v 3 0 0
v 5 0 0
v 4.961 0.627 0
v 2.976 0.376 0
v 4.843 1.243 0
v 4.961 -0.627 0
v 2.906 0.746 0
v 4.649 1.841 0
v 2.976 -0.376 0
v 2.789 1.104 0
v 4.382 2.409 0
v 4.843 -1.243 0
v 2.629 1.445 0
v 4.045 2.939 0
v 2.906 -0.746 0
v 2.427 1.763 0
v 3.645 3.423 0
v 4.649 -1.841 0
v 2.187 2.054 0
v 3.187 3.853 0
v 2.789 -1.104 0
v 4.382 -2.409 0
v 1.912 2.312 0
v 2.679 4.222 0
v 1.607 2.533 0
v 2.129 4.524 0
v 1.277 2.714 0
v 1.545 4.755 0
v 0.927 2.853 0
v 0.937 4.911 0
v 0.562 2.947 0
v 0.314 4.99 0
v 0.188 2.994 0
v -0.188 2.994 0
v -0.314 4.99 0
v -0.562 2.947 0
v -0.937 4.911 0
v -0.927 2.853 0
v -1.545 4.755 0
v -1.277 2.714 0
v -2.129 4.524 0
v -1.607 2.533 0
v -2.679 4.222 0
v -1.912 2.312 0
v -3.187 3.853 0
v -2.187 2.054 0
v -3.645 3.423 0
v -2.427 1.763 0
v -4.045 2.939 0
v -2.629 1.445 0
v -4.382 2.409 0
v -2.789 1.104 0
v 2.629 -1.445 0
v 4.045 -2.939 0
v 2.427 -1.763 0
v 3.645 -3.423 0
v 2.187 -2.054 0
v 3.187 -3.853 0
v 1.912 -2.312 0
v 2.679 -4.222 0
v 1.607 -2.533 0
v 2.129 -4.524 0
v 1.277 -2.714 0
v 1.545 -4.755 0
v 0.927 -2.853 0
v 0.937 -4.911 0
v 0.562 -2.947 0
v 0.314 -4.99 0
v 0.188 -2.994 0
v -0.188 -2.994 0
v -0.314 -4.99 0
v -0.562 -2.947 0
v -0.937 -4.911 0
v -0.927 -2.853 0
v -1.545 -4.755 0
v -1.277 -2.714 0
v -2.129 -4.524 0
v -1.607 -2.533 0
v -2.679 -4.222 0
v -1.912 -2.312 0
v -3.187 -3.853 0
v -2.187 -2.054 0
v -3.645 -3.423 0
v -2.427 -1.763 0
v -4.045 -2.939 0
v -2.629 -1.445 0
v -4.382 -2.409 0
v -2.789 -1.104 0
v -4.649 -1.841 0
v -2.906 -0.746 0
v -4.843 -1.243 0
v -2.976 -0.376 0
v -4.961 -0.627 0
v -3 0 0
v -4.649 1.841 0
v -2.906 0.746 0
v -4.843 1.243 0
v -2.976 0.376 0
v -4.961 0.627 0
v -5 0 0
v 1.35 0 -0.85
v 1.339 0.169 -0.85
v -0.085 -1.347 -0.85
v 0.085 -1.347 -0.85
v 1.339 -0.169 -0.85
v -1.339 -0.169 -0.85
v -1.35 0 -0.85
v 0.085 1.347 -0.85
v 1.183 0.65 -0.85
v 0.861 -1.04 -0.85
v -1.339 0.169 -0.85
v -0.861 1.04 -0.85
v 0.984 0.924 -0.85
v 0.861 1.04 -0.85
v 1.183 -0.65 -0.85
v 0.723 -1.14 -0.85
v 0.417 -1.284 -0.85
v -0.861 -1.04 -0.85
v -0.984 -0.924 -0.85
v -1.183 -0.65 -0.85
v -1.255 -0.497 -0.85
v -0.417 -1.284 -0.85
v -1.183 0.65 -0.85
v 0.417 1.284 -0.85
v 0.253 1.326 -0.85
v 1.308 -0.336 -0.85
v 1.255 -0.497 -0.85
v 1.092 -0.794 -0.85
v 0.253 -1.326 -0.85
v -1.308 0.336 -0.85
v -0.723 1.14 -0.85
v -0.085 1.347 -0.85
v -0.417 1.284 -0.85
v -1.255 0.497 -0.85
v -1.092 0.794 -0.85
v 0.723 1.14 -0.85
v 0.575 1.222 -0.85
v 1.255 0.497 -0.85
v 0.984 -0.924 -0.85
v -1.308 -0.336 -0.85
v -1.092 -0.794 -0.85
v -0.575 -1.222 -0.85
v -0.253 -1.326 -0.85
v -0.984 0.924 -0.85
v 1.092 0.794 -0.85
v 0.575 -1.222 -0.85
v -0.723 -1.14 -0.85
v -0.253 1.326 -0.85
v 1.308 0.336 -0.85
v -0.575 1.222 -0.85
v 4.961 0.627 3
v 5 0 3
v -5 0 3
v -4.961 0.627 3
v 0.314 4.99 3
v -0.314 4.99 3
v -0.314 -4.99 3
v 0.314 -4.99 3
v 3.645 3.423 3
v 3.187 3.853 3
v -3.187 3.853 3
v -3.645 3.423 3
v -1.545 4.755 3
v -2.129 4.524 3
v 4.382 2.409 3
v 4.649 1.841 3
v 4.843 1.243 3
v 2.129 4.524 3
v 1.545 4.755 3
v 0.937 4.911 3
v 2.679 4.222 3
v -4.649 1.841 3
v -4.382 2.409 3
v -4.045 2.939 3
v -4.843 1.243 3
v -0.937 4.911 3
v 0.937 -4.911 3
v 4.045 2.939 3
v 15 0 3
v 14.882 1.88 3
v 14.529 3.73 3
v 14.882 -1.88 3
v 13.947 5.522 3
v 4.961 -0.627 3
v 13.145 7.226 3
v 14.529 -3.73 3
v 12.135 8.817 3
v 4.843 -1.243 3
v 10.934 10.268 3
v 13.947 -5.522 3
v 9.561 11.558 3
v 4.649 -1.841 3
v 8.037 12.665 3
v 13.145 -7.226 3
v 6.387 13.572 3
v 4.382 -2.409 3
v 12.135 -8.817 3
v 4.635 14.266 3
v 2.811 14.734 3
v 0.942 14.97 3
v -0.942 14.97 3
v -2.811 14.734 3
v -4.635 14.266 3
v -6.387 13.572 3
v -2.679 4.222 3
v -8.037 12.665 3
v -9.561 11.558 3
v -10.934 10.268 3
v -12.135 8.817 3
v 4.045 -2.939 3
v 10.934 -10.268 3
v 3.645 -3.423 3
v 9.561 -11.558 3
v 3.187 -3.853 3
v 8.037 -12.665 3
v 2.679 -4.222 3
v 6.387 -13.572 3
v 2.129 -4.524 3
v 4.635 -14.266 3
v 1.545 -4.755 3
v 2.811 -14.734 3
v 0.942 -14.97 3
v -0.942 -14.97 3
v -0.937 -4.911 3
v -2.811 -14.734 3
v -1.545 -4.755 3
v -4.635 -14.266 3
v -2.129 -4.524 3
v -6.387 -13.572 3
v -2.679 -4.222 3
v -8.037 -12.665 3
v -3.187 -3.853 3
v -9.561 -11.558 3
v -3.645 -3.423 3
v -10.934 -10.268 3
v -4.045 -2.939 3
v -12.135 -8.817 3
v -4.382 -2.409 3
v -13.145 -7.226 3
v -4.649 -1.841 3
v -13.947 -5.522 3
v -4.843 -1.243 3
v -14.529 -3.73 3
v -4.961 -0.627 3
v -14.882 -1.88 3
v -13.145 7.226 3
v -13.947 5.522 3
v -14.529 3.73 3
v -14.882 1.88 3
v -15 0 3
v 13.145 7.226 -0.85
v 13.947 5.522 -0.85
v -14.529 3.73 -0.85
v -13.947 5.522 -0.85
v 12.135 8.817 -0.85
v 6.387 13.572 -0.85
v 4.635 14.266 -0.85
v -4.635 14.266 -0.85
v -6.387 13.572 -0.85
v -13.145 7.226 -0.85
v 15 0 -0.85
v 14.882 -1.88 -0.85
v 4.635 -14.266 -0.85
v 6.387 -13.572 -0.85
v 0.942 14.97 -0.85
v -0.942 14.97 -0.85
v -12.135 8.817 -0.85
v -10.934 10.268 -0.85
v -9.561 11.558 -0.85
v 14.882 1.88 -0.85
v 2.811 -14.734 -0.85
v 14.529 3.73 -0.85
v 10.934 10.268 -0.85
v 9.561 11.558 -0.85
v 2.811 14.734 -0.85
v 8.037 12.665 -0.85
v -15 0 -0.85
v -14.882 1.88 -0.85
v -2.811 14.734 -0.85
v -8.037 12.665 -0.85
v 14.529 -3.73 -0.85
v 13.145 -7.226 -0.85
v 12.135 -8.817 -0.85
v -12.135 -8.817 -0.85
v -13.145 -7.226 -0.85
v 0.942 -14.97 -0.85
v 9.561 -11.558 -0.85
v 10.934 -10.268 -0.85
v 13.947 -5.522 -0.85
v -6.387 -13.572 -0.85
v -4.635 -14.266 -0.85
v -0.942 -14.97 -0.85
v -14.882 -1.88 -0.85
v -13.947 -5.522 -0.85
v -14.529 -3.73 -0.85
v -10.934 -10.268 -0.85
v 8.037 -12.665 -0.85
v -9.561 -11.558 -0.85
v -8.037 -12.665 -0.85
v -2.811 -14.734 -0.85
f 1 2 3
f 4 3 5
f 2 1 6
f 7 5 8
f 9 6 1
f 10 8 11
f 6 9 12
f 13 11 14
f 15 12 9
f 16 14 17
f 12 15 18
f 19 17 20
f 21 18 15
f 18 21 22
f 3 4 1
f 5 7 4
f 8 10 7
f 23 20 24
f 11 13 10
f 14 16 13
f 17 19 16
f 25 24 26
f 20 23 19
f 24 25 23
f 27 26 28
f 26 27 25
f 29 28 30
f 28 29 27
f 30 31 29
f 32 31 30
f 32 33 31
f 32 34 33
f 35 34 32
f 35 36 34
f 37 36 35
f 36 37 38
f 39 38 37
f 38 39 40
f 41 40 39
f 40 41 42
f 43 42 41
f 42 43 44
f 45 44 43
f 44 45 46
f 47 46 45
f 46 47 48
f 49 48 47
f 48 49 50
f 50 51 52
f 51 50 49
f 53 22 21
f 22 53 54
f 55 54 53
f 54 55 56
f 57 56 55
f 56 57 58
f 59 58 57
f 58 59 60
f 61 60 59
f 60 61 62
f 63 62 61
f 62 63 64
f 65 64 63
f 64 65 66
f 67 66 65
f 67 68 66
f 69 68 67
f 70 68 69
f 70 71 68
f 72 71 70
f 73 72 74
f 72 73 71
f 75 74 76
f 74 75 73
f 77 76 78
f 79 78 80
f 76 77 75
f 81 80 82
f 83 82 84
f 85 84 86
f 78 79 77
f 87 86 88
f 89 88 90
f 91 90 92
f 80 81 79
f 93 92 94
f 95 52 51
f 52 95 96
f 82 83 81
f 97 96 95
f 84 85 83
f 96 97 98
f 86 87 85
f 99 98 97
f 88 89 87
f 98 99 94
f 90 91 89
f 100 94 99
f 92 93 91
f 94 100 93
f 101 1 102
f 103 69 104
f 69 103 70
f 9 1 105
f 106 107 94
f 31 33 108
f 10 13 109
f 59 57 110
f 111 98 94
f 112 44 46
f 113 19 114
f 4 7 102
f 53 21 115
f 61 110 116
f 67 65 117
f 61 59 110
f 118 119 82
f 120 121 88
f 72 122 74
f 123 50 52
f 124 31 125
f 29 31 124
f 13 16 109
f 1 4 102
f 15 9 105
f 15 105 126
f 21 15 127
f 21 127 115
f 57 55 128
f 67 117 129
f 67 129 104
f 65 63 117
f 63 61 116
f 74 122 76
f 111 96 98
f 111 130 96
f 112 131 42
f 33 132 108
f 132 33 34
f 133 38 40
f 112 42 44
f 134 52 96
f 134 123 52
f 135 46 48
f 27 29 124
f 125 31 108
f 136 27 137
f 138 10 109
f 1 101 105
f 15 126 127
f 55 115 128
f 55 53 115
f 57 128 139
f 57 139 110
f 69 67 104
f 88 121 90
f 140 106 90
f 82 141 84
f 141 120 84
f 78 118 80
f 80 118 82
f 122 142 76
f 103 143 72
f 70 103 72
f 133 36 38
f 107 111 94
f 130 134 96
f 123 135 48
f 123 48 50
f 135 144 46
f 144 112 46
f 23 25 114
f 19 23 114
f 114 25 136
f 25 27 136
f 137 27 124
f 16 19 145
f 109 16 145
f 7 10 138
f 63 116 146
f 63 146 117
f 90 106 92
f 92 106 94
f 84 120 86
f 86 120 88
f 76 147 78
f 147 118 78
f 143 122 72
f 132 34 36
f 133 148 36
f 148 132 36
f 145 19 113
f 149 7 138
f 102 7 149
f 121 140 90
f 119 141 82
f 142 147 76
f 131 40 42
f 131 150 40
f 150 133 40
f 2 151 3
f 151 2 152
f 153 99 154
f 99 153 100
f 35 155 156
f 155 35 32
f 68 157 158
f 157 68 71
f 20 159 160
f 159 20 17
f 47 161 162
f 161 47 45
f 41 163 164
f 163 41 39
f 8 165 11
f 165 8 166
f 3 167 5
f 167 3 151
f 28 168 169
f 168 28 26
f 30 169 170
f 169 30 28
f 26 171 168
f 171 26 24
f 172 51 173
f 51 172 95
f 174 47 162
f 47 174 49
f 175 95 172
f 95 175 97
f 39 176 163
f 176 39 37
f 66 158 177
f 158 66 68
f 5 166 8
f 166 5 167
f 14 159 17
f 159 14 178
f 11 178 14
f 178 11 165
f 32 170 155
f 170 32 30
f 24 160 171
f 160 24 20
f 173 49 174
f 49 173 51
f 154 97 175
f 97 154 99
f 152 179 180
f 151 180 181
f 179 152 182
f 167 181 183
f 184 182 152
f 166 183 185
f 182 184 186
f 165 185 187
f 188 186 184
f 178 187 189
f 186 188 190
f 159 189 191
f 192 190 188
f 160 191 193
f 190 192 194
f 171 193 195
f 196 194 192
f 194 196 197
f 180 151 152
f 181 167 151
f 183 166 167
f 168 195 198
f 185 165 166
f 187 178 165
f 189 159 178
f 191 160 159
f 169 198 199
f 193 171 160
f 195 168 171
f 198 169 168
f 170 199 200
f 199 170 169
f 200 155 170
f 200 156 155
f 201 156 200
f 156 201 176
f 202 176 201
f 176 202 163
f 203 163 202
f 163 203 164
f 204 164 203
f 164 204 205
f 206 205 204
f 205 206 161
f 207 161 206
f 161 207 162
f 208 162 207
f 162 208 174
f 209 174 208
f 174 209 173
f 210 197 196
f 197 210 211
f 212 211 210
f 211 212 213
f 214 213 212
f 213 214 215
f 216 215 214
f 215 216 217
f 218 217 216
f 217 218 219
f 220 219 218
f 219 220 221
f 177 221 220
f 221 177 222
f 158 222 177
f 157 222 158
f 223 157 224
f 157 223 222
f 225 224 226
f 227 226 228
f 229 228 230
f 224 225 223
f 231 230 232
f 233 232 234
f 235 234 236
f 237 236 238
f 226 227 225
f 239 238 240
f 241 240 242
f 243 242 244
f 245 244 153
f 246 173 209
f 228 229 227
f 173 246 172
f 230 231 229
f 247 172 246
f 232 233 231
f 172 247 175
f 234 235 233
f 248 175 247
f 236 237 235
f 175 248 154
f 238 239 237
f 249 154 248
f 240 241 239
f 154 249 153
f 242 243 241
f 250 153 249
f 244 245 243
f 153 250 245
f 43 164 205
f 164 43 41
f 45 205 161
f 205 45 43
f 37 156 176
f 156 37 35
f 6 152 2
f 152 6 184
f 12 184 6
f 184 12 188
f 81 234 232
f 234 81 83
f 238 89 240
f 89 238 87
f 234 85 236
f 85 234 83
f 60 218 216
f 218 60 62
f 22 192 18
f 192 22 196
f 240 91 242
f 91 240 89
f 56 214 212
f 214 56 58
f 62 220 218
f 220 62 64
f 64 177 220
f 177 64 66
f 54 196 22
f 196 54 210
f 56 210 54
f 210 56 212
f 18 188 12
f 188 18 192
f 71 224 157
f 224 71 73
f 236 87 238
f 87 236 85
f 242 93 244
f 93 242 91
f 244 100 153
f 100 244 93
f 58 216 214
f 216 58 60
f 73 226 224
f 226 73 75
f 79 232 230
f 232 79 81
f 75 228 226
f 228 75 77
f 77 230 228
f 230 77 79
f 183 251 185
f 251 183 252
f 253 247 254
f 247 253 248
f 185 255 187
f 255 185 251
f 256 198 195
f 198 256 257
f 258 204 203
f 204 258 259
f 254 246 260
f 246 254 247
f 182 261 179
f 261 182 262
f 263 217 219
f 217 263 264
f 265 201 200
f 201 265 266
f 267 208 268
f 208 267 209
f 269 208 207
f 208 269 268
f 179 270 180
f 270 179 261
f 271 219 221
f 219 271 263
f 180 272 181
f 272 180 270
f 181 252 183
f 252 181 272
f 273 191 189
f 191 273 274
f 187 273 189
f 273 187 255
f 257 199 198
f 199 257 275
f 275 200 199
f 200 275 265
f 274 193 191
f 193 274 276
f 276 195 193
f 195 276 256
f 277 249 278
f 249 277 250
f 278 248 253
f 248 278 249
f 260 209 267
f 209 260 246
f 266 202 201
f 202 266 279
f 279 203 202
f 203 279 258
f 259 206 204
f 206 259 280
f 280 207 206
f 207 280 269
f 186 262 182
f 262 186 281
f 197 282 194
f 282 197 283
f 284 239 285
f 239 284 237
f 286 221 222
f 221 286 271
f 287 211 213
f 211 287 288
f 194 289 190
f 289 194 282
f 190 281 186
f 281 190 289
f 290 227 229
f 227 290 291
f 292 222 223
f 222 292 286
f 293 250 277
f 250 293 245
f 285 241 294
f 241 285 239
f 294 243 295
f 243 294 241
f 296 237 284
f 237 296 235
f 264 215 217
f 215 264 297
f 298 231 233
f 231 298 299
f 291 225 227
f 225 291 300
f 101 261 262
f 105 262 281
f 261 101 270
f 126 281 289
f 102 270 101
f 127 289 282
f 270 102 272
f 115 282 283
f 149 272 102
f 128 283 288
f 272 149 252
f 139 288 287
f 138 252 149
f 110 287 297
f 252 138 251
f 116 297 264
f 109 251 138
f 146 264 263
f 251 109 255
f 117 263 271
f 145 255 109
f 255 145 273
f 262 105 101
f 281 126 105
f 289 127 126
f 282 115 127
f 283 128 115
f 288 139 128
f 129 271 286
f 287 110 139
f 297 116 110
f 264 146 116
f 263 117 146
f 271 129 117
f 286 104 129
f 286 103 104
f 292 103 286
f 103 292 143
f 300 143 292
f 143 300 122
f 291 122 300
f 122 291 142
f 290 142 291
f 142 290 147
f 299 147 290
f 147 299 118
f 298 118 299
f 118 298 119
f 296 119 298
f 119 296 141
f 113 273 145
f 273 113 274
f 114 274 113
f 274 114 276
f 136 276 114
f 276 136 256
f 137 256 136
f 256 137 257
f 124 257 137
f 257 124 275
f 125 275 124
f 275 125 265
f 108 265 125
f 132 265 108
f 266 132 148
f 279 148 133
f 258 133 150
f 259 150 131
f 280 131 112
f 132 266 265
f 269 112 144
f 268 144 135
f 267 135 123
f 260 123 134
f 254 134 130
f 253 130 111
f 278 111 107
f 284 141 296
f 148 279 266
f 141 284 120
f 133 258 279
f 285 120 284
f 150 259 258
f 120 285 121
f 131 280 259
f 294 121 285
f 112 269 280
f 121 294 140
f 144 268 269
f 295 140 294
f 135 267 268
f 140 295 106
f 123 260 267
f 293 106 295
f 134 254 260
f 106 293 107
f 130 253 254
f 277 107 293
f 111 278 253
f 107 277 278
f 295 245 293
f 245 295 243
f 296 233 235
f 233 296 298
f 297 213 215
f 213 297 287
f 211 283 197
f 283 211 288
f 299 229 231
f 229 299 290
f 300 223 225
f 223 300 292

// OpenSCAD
$fn = 50;

difference() {
	union() {
		translate(v = [0, 0, -0.8500000000000001]) {
			cylinder(h = 3.85, r = 15.0);
		}
	}
	union() {
		translate(v = [0, 0, 0]) {
			rotate(a = [0, 0, 0]) {
				difference() {
					union() {
						translate(v = [0, 0, -3.85]) {
							cylinder(h = 3.85, r = 1.0);
						}
						translate(v = [0, 0, -0.85]) {
							cylinder(h = 0.85, r1 = 1.35, r2 = 3.0);
						}
						translate(v = [0, 0, -3.85]) {
							cylinder(h = 3.85, r = 1.35);
						}
						translate(v = [0, 0, -3.85]) {
							cylinder(h = 3.85, r = 1.0);
						}
					}
					union();
				}
			}
		}
		#cylinder(h = 3, r = 5.0);
	}
}
